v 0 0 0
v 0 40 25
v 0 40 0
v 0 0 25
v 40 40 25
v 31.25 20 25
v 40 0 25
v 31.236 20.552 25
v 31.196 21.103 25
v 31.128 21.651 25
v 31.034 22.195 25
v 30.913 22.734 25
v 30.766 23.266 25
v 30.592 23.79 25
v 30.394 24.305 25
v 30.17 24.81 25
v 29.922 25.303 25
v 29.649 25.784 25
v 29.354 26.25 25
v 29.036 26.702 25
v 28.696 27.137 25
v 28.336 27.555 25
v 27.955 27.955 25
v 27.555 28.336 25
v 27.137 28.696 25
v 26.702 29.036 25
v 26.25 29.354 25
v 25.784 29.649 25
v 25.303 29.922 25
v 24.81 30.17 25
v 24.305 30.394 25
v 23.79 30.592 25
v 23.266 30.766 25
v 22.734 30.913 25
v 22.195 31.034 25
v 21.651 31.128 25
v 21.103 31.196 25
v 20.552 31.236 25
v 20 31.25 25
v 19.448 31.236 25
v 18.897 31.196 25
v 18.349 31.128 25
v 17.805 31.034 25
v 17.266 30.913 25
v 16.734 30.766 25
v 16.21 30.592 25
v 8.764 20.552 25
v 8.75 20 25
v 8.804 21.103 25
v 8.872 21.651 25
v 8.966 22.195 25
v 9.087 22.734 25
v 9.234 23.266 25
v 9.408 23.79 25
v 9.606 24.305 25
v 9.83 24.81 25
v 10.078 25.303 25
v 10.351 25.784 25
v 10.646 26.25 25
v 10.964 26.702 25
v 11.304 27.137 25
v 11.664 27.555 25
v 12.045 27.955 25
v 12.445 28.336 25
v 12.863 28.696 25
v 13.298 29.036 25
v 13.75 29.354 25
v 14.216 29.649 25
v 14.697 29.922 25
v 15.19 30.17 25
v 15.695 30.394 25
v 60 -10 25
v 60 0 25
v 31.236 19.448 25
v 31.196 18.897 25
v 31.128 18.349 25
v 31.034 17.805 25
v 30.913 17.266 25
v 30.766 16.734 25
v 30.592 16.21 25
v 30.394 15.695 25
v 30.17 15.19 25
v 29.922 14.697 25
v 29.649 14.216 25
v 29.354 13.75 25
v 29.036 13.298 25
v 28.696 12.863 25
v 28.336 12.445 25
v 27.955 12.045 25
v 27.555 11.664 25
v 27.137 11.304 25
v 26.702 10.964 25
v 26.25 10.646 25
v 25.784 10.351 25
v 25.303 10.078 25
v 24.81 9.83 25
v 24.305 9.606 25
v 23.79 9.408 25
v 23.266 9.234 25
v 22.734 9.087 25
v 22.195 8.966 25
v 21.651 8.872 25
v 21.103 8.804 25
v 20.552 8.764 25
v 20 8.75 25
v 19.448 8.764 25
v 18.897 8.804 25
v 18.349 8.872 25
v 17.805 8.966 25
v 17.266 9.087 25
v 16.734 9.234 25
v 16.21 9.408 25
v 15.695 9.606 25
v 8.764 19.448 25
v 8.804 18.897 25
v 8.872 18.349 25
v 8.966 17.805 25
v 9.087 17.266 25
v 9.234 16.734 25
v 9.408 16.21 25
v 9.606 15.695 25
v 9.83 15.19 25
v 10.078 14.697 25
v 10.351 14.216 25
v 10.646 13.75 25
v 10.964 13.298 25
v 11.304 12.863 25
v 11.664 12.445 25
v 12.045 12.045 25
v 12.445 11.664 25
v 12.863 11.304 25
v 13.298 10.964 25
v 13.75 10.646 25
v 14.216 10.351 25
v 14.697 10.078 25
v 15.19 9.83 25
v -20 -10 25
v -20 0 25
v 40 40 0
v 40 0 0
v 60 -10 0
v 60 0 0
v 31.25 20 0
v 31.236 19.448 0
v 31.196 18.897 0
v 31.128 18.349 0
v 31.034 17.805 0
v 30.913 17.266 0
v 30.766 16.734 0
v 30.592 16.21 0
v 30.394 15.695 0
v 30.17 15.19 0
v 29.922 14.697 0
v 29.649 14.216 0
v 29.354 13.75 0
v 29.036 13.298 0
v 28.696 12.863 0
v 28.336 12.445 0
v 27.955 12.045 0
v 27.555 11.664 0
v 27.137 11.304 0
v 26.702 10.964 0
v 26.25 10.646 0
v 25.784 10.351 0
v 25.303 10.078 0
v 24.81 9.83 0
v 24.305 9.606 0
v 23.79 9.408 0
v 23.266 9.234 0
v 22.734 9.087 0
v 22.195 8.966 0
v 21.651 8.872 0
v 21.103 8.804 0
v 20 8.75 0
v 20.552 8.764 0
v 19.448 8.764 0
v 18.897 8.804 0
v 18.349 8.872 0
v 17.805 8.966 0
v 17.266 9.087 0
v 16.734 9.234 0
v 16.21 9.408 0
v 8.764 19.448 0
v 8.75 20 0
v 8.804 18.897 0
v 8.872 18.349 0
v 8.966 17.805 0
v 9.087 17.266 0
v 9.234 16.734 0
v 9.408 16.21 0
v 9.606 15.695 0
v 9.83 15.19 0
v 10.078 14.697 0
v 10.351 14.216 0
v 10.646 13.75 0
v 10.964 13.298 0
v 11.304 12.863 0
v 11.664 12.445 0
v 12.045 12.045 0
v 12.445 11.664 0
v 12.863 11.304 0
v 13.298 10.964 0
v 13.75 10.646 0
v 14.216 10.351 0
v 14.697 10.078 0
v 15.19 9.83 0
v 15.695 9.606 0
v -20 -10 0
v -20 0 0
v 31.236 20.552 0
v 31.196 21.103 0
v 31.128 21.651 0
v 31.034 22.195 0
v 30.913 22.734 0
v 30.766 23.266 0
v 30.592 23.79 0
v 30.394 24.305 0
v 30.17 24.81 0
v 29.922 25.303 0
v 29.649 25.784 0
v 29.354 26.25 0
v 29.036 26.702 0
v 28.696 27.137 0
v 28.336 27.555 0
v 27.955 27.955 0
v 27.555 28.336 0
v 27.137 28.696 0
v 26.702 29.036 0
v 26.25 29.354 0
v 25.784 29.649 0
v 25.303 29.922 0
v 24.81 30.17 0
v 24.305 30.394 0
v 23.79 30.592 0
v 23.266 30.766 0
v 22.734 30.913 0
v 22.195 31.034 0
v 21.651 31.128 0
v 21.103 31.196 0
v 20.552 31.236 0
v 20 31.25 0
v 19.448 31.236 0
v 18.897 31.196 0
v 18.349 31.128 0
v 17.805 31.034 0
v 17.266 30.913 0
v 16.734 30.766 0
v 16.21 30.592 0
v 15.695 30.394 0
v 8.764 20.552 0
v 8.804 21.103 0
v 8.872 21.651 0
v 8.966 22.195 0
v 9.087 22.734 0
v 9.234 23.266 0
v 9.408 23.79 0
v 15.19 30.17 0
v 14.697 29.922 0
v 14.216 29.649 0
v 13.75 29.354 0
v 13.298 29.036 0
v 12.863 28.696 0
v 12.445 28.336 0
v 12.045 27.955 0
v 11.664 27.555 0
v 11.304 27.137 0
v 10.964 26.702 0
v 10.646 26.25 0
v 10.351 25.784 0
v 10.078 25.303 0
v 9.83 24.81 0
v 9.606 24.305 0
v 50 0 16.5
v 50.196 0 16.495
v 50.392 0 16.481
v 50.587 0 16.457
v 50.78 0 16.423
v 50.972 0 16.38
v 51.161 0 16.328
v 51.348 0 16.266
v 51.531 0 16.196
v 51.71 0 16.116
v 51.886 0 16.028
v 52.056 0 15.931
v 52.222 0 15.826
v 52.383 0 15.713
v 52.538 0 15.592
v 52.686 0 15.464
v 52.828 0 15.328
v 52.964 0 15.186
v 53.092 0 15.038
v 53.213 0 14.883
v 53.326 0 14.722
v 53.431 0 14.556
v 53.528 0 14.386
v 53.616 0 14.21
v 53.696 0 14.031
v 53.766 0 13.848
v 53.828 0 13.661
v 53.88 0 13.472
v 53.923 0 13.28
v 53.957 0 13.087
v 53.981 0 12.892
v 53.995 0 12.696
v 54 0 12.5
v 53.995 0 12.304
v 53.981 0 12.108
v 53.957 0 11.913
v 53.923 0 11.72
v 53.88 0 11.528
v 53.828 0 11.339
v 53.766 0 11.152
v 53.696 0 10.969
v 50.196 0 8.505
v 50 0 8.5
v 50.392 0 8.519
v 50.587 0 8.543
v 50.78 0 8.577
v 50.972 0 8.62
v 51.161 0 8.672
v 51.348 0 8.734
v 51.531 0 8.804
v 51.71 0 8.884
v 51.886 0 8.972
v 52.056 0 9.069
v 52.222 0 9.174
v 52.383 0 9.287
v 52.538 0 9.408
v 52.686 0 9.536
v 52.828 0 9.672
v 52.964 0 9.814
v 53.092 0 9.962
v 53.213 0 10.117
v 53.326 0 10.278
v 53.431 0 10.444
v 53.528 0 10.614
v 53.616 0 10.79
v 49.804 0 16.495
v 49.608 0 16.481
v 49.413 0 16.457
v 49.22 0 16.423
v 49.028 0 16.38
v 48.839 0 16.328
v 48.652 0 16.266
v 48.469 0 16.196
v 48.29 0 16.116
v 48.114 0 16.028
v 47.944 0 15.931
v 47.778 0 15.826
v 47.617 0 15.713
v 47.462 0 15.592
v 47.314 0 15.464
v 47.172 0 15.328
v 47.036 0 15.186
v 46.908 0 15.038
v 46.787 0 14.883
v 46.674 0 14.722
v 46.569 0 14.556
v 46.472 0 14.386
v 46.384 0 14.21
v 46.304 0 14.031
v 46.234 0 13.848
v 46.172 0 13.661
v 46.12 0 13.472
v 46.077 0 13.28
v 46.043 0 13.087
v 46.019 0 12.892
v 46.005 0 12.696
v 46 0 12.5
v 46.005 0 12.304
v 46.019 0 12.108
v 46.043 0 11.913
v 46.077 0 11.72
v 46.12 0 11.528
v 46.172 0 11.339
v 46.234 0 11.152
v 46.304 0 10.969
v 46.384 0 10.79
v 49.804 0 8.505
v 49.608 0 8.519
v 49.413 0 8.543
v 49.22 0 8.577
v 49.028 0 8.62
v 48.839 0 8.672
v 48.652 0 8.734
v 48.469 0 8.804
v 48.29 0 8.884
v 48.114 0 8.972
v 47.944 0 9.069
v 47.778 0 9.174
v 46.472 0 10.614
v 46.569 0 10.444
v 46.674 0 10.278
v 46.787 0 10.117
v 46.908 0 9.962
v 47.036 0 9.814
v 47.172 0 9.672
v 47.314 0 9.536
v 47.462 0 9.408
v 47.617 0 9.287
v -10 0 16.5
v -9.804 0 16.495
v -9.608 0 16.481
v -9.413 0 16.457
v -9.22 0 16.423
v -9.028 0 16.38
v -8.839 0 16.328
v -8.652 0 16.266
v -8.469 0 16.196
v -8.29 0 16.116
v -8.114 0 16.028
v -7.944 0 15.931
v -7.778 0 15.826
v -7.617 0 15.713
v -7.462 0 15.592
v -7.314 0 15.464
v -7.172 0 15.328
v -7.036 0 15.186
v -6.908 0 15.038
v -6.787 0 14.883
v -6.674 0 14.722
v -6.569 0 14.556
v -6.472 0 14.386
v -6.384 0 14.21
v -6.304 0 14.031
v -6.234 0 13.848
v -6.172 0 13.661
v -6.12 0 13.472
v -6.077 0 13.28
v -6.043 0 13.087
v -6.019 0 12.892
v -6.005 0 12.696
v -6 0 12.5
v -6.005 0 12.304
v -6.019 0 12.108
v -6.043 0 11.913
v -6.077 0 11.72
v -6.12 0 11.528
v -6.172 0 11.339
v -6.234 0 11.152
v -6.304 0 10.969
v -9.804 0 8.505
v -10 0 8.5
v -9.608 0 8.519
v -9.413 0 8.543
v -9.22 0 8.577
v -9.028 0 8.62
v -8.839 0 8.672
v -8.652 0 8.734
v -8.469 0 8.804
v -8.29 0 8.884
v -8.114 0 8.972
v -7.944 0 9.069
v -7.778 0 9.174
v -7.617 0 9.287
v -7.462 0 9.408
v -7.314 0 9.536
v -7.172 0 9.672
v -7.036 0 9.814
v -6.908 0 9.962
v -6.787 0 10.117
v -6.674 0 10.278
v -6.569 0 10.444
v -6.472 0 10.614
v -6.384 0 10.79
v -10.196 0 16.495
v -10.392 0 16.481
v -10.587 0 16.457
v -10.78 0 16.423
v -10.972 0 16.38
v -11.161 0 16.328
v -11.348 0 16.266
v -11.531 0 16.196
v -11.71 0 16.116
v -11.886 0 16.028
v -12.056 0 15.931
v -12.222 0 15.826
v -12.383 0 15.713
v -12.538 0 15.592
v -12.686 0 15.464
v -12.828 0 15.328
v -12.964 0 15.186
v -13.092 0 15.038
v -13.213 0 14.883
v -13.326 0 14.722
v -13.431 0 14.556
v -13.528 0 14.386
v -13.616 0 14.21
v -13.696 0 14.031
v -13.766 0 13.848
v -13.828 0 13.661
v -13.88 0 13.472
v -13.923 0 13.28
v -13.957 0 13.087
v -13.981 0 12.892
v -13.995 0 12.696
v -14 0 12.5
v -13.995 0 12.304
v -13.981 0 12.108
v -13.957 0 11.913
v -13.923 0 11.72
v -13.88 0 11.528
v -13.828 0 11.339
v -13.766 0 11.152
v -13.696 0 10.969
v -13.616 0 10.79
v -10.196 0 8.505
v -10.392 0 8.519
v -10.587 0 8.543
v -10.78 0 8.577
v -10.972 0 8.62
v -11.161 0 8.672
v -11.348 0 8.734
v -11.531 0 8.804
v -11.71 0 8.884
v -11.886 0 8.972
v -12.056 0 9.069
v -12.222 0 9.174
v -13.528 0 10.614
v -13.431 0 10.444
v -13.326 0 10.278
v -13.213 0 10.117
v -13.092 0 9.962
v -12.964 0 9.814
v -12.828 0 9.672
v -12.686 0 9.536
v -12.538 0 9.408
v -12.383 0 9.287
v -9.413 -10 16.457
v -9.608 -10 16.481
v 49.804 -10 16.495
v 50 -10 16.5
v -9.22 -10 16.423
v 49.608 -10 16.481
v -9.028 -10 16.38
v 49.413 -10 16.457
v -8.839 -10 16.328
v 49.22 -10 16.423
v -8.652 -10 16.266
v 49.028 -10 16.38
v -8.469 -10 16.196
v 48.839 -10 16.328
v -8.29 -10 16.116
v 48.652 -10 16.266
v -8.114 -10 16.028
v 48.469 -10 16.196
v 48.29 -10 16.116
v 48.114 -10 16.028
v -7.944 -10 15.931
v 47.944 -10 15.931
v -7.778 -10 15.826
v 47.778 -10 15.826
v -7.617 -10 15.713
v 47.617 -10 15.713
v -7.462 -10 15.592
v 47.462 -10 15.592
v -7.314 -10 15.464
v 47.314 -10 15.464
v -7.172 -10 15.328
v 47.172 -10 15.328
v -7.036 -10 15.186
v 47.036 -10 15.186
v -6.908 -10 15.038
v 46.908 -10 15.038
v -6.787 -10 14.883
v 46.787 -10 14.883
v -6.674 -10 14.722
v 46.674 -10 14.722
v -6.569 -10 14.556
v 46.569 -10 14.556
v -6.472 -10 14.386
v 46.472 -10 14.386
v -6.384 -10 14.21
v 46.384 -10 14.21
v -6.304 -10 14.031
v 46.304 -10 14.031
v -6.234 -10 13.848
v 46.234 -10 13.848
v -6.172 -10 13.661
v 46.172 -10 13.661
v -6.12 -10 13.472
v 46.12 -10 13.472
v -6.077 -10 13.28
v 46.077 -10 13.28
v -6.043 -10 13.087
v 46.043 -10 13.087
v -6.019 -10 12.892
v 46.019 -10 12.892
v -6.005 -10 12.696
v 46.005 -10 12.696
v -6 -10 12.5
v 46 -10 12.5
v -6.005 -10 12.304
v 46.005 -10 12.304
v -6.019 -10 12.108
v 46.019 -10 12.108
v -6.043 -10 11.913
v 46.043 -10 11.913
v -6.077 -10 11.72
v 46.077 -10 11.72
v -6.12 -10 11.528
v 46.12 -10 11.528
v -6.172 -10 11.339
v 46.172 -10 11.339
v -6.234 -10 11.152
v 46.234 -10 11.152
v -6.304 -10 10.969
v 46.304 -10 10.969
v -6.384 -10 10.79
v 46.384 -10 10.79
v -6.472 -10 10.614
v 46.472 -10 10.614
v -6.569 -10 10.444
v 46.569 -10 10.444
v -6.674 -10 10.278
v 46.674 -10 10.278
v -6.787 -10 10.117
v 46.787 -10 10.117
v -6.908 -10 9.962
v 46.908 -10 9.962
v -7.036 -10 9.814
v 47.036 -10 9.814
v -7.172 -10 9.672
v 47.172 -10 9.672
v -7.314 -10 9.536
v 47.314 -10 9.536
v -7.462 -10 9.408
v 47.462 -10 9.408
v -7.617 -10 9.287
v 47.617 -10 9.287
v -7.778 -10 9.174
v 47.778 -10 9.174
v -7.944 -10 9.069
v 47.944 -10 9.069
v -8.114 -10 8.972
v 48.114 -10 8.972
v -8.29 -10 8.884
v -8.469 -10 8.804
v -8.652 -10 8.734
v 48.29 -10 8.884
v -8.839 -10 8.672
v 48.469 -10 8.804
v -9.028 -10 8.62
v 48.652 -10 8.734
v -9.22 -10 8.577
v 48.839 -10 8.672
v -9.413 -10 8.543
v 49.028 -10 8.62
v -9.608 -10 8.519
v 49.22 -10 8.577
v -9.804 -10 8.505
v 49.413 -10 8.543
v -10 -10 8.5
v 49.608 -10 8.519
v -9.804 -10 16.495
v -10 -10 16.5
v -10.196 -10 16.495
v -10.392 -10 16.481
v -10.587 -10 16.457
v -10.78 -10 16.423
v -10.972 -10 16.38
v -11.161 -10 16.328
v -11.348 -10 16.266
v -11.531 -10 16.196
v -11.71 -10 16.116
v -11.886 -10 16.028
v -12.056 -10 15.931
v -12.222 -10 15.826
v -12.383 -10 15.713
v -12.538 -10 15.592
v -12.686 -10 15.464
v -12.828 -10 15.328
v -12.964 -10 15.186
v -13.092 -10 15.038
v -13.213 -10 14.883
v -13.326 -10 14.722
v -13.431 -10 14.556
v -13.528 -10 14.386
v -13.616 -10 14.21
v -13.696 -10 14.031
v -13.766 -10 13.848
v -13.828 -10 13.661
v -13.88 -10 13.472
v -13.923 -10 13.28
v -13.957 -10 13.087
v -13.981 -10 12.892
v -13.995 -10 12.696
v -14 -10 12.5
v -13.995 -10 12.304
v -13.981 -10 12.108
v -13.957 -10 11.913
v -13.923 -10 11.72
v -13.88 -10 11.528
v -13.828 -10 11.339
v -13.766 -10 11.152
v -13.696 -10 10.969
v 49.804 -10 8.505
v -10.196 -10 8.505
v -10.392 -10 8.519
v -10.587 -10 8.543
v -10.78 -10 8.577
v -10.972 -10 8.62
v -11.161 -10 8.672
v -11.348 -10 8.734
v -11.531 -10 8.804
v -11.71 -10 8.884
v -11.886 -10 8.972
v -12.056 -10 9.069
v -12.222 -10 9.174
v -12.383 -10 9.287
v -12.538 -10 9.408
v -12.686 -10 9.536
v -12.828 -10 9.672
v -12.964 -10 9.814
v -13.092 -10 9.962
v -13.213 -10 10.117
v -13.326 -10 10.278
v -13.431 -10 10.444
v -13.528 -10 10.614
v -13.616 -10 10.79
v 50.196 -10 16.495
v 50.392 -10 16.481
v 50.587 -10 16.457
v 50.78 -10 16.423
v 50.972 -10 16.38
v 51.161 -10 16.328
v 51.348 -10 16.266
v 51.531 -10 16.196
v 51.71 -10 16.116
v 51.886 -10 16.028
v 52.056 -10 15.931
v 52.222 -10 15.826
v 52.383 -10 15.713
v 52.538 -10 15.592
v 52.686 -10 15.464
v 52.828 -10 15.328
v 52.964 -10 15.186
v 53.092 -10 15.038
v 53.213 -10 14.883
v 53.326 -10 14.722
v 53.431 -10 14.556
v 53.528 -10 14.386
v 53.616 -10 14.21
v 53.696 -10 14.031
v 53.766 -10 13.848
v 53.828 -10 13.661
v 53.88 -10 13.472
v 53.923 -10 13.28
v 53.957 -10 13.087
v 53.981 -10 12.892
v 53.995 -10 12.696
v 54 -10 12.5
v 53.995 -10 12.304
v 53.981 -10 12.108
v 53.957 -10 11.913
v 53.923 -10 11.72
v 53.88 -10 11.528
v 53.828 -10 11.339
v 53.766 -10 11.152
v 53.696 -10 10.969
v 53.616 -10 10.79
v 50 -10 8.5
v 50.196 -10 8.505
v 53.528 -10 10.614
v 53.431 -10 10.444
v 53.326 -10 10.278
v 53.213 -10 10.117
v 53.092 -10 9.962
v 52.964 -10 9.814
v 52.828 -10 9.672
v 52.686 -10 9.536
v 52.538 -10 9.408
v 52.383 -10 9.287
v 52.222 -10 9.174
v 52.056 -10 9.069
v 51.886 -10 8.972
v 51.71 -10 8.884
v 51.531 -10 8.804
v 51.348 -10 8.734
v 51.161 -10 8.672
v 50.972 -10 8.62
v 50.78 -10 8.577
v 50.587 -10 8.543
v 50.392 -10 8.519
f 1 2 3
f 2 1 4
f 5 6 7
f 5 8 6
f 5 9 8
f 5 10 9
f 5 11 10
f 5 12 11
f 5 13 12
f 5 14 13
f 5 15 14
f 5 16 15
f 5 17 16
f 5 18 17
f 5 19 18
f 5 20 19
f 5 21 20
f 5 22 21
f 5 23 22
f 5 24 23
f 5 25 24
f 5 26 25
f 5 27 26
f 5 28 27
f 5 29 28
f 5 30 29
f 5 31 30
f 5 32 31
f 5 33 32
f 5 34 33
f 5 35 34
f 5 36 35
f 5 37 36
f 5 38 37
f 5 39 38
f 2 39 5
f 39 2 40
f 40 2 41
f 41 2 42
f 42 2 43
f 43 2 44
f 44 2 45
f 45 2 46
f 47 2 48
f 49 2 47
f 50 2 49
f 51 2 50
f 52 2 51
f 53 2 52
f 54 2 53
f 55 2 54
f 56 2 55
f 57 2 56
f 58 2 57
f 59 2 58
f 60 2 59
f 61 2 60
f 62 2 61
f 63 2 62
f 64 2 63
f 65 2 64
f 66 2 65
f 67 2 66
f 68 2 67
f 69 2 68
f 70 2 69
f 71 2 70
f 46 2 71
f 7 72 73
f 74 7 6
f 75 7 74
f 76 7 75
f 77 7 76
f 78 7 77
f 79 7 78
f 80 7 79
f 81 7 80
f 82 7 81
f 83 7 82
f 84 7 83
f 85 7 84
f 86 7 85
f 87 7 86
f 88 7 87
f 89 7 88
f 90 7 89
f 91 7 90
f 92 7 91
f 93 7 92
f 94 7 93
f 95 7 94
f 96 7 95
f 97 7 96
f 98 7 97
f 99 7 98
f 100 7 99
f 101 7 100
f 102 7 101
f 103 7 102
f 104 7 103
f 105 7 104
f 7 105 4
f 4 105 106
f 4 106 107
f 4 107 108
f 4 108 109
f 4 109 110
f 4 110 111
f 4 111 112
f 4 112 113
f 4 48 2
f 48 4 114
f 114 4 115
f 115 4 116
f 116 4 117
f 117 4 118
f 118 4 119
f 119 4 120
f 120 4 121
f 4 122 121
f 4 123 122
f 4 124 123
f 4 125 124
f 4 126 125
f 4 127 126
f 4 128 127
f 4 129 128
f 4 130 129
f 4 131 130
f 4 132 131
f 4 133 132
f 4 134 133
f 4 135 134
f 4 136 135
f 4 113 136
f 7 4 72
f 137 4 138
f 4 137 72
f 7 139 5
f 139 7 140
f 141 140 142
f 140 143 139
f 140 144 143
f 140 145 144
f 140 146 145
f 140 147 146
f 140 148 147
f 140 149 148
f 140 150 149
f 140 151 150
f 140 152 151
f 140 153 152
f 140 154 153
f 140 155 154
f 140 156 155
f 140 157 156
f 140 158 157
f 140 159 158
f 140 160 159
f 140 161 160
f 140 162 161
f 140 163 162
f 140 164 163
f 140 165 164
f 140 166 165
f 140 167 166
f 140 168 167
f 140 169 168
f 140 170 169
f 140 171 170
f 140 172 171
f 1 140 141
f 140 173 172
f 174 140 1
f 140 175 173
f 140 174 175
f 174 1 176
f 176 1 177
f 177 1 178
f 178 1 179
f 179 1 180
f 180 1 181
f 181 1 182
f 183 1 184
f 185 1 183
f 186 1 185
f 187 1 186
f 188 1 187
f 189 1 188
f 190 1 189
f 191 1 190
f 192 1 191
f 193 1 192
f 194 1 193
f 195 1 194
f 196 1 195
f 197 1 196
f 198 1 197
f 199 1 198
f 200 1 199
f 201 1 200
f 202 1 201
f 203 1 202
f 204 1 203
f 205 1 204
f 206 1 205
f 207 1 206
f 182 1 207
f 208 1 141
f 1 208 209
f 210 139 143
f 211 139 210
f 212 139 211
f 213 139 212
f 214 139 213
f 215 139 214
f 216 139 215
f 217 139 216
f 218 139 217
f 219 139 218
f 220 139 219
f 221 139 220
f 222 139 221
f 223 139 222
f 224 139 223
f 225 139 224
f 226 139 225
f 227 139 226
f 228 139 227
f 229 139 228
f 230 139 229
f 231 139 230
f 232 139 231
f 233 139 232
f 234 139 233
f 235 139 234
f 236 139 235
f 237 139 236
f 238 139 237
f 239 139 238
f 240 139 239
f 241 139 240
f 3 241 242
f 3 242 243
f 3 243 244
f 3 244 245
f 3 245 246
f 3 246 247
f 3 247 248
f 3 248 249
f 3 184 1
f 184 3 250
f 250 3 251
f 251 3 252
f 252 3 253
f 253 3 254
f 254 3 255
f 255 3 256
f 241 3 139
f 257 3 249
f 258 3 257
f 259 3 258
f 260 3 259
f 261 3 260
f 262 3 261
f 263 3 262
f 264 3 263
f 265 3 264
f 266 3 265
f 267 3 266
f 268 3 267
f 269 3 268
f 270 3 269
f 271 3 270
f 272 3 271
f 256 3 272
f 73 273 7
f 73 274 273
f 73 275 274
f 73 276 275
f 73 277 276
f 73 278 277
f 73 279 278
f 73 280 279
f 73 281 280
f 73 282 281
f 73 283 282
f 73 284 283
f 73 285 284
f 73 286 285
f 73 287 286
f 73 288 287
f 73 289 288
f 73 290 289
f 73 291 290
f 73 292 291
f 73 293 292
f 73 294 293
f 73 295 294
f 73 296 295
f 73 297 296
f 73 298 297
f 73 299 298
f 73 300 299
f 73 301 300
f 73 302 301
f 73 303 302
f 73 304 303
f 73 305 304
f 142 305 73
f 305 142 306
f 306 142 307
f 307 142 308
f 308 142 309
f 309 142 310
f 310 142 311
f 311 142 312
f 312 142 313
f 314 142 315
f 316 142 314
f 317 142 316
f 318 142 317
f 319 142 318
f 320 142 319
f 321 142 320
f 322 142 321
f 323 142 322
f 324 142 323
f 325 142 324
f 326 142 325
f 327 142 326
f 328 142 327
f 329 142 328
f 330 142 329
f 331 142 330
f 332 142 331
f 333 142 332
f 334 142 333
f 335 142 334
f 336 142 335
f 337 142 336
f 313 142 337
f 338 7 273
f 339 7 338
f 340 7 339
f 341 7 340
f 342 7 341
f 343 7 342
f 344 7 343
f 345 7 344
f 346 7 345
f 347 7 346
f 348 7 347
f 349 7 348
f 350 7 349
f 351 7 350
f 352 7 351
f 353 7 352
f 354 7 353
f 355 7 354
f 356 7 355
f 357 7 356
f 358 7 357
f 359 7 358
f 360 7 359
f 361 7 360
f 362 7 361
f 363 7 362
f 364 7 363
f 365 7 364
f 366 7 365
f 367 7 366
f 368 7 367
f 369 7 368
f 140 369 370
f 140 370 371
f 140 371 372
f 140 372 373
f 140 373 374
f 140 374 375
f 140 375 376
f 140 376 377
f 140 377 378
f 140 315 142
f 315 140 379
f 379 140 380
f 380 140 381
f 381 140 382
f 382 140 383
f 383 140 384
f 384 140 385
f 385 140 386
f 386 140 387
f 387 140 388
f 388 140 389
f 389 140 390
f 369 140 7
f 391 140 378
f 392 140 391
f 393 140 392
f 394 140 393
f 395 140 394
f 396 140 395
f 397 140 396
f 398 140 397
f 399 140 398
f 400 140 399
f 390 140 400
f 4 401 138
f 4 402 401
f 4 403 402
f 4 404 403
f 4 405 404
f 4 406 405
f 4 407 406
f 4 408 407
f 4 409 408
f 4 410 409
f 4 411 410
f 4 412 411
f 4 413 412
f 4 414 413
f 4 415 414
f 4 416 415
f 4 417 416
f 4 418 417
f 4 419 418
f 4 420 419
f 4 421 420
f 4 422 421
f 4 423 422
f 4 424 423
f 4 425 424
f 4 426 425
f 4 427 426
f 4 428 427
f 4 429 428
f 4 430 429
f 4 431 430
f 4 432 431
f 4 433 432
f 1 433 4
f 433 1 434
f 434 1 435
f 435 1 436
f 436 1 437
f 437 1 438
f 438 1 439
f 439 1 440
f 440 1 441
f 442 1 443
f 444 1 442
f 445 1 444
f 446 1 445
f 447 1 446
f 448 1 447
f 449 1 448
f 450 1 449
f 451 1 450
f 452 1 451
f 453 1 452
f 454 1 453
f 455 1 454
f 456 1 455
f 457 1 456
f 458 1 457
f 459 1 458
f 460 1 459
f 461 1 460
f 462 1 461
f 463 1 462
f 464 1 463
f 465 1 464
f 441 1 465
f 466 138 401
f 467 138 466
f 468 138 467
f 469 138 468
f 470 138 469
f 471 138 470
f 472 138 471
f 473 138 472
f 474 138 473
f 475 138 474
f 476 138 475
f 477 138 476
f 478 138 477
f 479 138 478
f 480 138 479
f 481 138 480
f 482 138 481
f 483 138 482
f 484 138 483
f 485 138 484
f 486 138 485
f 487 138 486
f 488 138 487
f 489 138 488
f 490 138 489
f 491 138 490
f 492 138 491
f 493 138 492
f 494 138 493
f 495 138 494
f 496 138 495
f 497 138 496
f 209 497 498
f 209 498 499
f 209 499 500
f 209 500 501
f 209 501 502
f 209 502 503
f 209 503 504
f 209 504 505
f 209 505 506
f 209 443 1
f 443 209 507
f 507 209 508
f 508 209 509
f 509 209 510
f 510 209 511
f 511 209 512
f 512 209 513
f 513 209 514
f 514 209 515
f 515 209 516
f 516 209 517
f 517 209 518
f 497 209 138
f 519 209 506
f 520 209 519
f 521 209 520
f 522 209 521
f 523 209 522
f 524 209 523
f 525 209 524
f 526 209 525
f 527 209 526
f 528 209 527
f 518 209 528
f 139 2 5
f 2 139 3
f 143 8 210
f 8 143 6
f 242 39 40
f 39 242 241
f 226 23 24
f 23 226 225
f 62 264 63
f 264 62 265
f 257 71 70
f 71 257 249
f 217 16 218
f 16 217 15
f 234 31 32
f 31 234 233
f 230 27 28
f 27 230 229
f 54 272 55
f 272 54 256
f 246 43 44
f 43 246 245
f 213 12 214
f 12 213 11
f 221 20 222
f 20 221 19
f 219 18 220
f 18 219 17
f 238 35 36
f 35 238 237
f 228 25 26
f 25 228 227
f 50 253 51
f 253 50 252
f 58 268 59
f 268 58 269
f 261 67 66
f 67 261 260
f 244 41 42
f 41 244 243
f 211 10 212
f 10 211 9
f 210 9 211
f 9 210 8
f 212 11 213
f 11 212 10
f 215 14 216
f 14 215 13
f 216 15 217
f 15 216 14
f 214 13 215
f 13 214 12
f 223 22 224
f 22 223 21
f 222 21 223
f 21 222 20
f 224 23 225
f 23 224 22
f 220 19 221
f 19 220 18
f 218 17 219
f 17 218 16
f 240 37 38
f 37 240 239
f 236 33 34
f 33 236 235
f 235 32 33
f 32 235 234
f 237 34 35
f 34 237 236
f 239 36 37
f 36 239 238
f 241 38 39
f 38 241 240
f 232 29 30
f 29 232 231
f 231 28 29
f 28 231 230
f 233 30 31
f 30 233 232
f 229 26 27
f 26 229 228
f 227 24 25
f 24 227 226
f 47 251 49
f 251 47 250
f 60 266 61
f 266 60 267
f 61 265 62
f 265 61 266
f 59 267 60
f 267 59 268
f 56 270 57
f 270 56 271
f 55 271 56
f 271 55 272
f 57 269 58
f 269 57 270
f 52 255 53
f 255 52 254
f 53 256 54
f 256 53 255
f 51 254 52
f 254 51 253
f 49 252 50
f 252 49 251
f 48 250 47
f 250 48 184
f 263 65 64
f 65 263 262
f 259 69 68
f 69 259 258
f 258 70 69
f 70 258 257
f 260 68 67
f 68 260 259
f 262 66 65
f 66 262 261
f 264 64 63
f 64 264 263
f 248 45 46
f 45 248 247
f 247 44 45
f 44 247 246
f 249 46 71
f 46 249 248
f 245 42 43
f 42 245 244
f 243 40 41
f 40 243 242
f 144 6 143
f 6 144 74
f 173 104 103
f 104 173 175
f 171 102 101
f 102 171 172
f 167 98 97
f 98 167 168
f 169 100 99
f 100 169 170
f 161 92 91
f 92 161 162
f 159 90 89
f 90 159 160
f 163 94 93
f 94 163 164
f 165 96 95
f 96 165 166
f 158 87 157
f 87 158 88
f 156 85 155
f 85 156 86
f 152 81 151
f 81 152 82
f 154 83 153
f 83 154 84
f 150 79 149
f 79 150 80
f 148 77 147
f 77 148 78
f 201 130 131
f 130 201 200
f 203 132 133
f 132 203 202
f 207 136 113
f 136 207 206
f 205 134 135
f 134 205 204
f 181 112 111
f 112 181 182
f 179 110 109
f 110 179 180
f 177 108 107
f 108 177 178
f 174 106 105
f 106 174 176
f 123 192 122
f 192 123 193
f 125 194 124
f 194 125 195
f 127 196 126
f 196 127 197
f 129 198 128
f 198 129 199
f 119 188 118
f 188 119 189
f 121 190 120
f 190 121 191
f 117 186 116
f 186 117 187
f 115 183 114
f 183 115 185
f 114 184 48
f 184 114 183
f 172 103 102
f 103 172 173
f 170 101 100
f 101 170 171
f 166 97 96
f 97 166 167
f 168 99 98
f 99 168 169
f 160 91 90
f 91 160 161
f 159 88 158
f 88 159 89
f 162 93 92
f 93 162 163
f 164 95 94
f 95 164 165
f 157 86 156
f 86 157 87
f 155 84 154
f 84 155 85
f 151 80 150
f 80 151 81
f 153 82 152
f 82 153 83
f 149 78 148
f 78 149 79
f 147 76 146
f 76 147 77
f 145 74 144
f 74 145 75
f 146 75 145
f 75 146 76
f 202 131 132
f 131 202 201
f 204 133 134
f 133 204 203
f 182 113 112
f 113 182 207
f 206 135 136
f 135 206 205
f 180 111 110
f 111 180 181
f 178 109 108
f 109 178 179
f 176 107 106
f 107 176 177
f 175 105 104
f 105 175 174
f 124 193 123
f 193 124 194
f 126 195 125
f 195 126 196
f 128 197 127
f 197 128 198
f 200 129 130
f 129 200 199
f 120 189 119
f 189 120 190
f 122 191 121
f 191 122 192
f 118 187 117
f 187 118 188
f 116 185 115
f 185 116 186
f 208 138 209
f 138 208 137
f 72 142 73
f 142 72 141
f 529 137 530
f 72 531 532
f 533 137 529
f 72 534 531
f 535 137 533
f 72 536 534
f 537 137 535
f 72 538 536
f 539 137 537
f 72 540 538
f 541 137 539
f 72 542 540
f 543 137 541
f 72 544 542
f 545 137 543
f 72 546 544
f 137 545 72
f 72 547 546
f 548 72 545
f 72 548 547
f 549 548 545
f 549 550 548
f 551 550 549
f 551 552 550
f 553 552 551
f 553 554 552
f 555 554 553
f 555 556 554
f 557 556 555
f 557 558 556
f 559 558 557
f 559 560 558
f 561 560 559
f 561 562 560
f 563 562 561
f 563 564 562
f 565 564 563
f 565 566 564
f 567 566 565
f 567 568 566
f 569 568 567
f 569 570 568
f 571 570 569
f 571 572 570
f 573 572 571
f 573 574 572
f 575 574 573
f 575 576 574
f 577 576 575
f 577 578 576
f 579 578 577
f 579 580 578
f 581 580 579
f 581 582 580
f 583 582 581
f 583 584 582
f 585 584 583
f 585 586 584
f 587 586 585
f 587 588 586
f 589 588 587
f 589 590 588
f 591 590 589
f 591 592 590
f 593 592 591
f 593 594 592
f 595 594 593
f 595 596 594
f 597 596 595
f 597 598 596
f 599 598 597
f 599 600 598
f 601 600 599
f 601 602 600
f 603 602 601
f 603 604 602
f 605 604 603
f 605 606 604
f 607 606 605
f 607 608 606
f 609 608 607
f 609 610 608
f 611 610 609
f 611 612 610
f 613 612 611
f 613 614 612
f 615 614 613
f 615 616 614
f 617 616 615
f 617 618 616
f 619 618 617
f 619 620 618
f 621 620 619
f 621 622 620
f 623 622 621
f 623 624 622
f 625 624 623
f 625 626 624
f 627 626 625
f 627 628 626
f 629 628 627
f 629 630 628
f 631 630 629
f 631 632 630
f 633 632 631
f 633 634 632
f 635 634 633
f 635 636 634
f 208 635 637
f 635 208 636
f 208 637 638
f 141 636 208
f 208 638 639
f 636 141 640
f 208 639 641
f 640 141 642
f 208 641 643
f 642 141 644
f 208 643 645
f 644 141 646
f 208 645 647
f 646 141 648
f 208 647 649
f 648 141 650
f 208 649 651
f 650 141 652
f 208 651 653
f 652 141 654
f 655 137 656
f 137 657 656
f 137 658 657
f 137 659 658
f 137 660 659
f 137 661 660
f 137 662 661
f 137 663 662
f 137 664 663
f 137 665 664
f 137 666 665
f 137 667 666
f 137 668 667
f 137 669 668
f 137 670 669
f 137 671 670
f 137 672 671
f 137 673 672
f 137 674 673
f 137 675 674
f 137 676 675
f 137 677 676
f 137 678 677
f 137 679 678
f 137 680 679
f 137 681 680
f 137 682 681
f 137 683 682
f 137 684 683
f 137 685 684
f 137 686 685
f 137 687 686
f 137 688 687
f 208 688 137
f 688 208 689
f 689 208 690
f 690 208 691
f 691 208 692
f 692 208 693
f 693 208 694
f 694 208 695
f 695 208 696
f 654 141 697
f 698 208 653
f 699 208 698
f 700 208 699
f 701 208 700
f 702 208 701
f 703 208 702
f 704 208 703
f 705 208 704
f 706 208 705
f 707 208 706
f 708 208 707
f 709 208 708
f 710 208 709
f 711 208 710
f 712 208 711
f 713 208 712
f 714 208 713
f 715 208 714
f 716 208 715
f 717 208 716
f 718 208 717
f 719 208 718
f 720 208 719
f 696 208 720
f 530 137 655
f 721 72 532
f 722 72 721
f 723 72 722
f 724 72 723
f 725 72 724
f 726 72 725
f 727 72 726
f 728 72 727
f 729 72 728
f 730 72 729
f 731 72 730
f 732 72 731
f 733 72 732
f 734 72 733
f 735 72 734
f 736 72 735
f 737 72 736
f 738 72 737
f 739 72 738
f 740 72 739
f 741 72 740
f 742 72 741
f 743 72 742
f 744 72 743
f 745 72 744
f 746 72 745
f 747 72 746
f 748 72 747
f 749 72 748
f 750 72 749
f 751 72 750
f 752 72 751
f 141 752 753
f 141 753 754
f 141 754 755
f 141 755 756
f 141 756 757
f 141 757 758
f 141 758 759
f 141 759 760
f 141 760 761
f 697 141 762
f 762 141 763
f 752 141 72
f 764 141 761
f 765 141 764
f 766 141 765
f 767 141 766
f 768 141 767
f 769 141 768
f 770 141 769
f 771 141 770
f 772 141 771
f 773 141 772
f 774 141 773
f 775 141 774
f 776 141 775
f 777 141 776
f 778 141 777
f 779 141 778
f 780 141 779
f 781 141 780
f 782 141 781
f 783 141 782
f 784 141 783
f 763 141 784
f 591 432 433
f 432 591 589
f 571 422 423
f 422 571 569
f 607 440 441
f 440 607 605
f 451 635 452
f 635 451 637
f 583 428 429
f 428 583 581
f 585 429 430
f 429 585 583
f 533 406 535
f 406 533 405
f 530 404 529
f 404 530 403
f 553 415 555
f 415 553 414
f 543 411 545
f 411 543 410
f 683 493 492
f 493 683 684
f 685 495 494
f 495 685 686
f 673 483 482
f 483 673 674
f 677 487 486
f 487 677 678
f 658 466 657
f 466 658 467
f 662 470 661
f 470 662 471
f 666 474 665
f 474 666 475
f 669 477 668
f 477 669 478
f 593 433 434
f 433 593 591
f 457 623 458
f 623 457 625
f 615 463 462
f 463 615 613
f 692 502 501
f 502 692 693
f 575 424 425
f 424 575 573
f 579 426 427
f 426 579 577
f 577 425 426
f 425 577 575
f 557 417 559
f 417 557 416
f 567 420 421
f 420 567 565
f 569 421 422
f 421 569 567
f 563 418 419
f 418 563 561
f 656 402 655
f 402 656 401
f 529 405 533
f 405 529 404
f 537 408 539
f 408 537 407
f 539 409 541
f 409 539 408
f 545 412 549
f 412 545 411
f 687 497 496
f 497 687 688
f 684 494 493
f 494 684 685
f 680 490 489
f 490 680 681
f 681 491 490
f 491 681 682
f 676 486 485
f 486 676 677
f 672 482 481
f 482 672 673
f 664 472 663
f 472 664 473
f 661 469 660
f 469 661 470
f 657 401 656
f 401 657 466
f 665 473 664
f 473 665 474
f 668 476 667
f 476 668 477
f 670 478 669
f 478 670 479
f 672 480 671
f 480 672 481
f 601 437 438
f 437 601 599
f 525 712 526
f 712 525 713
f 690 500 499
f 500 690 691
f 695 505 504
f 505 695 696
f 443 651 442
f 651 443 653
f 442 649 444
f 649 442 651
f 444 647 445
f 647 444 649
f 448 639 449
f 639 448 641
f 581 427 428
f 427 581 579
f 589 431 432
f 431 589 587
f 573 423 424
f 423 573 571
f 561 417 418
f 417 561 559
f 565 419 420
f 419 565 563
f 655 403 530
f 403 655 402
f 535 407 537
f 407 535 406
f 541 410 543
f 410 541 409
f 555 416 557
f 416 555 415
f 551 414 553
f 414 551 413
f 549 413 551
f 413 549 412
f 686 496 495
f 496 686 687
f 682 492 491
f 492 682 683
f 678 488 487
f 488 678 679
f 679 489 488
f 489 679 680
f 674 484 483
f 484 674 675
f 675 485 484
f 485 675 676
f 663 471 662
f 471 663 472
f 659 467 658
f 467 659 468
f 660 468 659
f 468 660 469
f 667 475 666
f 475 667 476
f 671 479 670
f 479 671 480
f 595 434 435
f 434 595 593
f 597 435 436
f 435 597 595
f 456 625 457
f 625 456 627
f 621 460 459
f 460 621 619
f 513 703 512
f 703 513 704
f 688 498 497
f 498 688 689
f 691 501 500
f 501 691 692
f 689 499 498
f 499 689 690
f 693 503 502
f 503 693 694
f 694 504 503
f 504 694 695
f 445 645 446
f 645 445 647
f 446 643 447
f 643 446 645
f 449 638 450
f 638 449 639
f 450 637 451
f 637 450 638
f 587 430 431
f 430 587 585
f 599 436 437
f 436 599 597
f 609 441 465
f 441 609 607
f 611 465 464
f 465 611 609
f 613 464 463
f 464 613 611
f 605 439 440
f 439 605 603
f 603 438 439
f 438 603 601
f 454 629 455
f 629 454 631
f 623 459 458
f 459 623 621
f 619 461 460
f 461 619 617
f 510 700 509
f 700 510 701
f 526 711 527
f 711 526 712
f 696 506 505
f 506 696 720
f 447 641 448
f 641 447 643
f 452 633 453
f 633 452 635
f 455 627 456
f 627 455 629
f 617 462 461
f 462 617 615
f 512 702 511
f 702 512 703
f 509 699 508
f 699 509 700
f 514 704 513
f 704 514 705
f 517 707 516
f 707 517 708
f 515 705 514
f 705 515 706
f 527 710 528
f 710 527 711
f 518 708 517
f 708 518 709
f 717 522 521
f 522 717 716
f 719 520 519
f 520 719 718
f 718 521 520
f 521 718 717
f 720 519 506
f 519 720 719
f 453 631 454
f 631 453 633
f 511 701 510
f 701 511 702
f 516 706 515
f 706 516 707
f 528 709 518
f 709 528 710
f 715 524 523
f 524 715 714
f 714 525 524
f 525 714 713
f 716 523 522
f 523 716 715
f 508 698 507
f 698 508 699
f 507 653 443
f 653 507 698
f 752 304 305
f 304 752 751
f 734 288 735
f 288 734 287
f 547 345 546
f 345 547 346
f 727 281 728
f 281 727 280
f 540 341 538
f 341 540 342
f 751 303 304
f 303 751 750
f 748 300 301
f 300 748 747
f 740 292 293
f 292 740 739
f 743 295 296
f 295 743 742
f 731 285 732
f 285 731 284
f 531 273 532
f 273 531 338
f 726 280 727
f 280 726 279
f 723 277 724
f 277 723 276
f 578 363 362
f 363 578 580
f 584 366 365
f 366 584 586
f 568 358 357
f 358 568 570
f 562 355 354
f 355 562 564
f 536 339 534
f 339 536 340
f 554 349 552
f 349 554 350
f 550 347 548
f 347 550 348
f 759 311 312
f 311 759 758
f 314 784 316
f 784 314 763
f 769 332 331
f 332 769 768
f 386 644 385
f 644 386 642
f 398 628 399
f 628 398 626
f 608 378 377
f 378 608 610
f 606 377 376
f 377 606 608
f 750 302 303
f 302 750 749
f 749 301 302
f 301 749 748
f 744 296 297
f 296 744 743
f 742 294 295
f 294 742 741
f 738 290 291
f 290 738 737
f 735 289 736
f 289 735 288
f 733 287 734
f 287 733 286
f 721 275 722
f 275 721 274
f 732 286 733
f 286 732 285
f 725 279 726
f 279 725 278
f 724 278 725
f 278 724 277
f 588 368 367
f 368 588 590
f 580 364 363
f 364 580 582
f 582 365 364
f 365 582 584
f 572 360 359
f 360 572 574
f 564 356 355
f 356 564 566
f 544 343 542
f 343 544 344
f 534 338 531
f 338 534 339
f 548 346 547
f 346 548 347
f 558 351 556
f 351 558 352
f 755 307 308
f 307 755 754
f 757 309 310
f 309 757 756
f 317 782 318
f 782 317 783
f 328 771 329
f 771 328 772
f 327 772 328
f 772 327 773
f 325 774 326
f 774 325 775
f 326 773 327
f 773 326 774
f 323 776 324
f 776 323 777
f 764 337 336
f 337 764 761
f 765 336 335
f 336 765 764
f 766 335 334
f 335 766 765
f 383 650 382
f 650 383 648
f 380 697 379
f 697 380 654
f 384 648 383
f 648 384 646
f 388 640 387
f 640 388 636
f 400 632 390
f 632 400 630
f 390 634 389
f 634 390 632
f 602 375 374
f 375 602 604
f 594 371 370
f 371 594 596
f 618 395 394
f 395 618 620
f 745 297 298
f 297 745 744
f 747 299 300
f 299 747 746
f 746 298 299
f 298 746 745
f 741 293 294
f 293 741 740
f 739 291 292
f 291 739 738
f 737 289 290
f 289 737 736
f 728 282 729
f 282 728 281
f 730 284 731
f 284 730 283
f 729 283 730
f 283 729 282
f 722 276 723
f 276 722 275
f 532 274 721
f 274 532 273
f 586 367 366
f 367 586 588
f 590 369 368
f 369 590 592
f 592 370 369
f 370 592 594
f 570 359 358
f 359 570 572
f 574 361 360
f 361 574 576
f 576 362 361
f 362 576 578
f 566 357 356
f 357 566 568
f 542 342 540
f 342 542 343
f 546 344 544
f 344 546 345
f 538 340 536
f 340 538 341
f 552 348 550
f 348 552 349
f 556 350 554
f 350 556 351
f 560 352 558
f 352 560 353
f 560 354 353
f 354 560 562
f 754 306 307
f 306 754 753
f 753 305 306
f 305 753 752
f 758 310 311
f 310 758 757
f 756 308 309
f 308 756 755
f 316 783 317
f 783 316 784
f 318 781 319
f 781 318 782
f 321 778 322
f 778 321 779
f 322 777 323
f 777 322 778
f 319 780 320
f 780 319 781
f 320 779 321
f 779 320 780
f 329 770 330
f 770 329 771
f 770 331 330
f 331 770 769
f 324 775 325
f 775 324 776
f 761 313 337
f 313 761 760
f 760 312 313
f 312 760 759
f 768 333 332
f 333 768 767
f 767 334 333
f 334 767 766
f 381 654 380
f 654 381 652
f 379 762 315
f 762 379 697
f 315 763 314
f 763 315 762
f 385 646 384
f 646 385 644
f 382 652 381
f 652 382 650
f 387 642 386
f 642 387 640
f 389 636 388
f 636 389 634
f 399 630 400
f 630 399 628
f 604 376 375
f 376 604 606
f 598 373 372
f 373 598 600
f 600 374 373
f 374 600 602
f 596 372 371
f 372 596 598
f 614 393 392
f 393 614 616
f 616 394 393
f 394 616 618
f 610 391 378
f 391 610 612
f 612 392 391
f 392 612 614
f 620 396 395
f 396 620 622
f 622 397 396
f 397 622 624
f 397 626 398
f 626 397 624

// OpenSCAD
/* mail@AndreBetz.de Zwieselbrau.de*/

GewindeG58 = 22.5;
GewindeM8  = 8.0;
HolderSizeX = 40;
HolderSizeY = 40;
HolderSizeZ = 25;
ConnSizeL = 20;
ConnSizeX = HolderSizeX+2*ConnSizeL;
ConnSizeY = 10;
ConnSizeZ = 25;
ConnDistance =  60;

$fn = 128;

difference() 
{
    translate ([0, 0, 0]) 
        cube ([HolderSizeX, HolderSizeY,HolderSizeZ],false);
    translate ([HolderSizeX/2,HolderSizeY/2, -0.1]) 
        cylinder(HolderSizeZ+0.2,GewindeG58/2,GewindeG58/2); 
}
difference() 
{
    translate ([-ConnSizeL, -ConnSizeY, 0])      
        cube ([ConnSizeX, ConnSizeY,ConnSizeZ],false);
    rotate([90,0,0])
        translate ([-ConnSizeL/2, ConnSizeZ/2, -ConnSizeL+10])      
            cylinder(HolderSizeZ+0.2,GewindeM8/2,GewindeM8/2); 
    rotate([90,0,0])
        translate ([-ConnSizeL/2+ConnDistance, ConnSizeZ/2, -ConnSizeL+10])      
            cylinder(HolderSizeZ+0.2,GewindeM8/2,GewindeM8/2);
}
